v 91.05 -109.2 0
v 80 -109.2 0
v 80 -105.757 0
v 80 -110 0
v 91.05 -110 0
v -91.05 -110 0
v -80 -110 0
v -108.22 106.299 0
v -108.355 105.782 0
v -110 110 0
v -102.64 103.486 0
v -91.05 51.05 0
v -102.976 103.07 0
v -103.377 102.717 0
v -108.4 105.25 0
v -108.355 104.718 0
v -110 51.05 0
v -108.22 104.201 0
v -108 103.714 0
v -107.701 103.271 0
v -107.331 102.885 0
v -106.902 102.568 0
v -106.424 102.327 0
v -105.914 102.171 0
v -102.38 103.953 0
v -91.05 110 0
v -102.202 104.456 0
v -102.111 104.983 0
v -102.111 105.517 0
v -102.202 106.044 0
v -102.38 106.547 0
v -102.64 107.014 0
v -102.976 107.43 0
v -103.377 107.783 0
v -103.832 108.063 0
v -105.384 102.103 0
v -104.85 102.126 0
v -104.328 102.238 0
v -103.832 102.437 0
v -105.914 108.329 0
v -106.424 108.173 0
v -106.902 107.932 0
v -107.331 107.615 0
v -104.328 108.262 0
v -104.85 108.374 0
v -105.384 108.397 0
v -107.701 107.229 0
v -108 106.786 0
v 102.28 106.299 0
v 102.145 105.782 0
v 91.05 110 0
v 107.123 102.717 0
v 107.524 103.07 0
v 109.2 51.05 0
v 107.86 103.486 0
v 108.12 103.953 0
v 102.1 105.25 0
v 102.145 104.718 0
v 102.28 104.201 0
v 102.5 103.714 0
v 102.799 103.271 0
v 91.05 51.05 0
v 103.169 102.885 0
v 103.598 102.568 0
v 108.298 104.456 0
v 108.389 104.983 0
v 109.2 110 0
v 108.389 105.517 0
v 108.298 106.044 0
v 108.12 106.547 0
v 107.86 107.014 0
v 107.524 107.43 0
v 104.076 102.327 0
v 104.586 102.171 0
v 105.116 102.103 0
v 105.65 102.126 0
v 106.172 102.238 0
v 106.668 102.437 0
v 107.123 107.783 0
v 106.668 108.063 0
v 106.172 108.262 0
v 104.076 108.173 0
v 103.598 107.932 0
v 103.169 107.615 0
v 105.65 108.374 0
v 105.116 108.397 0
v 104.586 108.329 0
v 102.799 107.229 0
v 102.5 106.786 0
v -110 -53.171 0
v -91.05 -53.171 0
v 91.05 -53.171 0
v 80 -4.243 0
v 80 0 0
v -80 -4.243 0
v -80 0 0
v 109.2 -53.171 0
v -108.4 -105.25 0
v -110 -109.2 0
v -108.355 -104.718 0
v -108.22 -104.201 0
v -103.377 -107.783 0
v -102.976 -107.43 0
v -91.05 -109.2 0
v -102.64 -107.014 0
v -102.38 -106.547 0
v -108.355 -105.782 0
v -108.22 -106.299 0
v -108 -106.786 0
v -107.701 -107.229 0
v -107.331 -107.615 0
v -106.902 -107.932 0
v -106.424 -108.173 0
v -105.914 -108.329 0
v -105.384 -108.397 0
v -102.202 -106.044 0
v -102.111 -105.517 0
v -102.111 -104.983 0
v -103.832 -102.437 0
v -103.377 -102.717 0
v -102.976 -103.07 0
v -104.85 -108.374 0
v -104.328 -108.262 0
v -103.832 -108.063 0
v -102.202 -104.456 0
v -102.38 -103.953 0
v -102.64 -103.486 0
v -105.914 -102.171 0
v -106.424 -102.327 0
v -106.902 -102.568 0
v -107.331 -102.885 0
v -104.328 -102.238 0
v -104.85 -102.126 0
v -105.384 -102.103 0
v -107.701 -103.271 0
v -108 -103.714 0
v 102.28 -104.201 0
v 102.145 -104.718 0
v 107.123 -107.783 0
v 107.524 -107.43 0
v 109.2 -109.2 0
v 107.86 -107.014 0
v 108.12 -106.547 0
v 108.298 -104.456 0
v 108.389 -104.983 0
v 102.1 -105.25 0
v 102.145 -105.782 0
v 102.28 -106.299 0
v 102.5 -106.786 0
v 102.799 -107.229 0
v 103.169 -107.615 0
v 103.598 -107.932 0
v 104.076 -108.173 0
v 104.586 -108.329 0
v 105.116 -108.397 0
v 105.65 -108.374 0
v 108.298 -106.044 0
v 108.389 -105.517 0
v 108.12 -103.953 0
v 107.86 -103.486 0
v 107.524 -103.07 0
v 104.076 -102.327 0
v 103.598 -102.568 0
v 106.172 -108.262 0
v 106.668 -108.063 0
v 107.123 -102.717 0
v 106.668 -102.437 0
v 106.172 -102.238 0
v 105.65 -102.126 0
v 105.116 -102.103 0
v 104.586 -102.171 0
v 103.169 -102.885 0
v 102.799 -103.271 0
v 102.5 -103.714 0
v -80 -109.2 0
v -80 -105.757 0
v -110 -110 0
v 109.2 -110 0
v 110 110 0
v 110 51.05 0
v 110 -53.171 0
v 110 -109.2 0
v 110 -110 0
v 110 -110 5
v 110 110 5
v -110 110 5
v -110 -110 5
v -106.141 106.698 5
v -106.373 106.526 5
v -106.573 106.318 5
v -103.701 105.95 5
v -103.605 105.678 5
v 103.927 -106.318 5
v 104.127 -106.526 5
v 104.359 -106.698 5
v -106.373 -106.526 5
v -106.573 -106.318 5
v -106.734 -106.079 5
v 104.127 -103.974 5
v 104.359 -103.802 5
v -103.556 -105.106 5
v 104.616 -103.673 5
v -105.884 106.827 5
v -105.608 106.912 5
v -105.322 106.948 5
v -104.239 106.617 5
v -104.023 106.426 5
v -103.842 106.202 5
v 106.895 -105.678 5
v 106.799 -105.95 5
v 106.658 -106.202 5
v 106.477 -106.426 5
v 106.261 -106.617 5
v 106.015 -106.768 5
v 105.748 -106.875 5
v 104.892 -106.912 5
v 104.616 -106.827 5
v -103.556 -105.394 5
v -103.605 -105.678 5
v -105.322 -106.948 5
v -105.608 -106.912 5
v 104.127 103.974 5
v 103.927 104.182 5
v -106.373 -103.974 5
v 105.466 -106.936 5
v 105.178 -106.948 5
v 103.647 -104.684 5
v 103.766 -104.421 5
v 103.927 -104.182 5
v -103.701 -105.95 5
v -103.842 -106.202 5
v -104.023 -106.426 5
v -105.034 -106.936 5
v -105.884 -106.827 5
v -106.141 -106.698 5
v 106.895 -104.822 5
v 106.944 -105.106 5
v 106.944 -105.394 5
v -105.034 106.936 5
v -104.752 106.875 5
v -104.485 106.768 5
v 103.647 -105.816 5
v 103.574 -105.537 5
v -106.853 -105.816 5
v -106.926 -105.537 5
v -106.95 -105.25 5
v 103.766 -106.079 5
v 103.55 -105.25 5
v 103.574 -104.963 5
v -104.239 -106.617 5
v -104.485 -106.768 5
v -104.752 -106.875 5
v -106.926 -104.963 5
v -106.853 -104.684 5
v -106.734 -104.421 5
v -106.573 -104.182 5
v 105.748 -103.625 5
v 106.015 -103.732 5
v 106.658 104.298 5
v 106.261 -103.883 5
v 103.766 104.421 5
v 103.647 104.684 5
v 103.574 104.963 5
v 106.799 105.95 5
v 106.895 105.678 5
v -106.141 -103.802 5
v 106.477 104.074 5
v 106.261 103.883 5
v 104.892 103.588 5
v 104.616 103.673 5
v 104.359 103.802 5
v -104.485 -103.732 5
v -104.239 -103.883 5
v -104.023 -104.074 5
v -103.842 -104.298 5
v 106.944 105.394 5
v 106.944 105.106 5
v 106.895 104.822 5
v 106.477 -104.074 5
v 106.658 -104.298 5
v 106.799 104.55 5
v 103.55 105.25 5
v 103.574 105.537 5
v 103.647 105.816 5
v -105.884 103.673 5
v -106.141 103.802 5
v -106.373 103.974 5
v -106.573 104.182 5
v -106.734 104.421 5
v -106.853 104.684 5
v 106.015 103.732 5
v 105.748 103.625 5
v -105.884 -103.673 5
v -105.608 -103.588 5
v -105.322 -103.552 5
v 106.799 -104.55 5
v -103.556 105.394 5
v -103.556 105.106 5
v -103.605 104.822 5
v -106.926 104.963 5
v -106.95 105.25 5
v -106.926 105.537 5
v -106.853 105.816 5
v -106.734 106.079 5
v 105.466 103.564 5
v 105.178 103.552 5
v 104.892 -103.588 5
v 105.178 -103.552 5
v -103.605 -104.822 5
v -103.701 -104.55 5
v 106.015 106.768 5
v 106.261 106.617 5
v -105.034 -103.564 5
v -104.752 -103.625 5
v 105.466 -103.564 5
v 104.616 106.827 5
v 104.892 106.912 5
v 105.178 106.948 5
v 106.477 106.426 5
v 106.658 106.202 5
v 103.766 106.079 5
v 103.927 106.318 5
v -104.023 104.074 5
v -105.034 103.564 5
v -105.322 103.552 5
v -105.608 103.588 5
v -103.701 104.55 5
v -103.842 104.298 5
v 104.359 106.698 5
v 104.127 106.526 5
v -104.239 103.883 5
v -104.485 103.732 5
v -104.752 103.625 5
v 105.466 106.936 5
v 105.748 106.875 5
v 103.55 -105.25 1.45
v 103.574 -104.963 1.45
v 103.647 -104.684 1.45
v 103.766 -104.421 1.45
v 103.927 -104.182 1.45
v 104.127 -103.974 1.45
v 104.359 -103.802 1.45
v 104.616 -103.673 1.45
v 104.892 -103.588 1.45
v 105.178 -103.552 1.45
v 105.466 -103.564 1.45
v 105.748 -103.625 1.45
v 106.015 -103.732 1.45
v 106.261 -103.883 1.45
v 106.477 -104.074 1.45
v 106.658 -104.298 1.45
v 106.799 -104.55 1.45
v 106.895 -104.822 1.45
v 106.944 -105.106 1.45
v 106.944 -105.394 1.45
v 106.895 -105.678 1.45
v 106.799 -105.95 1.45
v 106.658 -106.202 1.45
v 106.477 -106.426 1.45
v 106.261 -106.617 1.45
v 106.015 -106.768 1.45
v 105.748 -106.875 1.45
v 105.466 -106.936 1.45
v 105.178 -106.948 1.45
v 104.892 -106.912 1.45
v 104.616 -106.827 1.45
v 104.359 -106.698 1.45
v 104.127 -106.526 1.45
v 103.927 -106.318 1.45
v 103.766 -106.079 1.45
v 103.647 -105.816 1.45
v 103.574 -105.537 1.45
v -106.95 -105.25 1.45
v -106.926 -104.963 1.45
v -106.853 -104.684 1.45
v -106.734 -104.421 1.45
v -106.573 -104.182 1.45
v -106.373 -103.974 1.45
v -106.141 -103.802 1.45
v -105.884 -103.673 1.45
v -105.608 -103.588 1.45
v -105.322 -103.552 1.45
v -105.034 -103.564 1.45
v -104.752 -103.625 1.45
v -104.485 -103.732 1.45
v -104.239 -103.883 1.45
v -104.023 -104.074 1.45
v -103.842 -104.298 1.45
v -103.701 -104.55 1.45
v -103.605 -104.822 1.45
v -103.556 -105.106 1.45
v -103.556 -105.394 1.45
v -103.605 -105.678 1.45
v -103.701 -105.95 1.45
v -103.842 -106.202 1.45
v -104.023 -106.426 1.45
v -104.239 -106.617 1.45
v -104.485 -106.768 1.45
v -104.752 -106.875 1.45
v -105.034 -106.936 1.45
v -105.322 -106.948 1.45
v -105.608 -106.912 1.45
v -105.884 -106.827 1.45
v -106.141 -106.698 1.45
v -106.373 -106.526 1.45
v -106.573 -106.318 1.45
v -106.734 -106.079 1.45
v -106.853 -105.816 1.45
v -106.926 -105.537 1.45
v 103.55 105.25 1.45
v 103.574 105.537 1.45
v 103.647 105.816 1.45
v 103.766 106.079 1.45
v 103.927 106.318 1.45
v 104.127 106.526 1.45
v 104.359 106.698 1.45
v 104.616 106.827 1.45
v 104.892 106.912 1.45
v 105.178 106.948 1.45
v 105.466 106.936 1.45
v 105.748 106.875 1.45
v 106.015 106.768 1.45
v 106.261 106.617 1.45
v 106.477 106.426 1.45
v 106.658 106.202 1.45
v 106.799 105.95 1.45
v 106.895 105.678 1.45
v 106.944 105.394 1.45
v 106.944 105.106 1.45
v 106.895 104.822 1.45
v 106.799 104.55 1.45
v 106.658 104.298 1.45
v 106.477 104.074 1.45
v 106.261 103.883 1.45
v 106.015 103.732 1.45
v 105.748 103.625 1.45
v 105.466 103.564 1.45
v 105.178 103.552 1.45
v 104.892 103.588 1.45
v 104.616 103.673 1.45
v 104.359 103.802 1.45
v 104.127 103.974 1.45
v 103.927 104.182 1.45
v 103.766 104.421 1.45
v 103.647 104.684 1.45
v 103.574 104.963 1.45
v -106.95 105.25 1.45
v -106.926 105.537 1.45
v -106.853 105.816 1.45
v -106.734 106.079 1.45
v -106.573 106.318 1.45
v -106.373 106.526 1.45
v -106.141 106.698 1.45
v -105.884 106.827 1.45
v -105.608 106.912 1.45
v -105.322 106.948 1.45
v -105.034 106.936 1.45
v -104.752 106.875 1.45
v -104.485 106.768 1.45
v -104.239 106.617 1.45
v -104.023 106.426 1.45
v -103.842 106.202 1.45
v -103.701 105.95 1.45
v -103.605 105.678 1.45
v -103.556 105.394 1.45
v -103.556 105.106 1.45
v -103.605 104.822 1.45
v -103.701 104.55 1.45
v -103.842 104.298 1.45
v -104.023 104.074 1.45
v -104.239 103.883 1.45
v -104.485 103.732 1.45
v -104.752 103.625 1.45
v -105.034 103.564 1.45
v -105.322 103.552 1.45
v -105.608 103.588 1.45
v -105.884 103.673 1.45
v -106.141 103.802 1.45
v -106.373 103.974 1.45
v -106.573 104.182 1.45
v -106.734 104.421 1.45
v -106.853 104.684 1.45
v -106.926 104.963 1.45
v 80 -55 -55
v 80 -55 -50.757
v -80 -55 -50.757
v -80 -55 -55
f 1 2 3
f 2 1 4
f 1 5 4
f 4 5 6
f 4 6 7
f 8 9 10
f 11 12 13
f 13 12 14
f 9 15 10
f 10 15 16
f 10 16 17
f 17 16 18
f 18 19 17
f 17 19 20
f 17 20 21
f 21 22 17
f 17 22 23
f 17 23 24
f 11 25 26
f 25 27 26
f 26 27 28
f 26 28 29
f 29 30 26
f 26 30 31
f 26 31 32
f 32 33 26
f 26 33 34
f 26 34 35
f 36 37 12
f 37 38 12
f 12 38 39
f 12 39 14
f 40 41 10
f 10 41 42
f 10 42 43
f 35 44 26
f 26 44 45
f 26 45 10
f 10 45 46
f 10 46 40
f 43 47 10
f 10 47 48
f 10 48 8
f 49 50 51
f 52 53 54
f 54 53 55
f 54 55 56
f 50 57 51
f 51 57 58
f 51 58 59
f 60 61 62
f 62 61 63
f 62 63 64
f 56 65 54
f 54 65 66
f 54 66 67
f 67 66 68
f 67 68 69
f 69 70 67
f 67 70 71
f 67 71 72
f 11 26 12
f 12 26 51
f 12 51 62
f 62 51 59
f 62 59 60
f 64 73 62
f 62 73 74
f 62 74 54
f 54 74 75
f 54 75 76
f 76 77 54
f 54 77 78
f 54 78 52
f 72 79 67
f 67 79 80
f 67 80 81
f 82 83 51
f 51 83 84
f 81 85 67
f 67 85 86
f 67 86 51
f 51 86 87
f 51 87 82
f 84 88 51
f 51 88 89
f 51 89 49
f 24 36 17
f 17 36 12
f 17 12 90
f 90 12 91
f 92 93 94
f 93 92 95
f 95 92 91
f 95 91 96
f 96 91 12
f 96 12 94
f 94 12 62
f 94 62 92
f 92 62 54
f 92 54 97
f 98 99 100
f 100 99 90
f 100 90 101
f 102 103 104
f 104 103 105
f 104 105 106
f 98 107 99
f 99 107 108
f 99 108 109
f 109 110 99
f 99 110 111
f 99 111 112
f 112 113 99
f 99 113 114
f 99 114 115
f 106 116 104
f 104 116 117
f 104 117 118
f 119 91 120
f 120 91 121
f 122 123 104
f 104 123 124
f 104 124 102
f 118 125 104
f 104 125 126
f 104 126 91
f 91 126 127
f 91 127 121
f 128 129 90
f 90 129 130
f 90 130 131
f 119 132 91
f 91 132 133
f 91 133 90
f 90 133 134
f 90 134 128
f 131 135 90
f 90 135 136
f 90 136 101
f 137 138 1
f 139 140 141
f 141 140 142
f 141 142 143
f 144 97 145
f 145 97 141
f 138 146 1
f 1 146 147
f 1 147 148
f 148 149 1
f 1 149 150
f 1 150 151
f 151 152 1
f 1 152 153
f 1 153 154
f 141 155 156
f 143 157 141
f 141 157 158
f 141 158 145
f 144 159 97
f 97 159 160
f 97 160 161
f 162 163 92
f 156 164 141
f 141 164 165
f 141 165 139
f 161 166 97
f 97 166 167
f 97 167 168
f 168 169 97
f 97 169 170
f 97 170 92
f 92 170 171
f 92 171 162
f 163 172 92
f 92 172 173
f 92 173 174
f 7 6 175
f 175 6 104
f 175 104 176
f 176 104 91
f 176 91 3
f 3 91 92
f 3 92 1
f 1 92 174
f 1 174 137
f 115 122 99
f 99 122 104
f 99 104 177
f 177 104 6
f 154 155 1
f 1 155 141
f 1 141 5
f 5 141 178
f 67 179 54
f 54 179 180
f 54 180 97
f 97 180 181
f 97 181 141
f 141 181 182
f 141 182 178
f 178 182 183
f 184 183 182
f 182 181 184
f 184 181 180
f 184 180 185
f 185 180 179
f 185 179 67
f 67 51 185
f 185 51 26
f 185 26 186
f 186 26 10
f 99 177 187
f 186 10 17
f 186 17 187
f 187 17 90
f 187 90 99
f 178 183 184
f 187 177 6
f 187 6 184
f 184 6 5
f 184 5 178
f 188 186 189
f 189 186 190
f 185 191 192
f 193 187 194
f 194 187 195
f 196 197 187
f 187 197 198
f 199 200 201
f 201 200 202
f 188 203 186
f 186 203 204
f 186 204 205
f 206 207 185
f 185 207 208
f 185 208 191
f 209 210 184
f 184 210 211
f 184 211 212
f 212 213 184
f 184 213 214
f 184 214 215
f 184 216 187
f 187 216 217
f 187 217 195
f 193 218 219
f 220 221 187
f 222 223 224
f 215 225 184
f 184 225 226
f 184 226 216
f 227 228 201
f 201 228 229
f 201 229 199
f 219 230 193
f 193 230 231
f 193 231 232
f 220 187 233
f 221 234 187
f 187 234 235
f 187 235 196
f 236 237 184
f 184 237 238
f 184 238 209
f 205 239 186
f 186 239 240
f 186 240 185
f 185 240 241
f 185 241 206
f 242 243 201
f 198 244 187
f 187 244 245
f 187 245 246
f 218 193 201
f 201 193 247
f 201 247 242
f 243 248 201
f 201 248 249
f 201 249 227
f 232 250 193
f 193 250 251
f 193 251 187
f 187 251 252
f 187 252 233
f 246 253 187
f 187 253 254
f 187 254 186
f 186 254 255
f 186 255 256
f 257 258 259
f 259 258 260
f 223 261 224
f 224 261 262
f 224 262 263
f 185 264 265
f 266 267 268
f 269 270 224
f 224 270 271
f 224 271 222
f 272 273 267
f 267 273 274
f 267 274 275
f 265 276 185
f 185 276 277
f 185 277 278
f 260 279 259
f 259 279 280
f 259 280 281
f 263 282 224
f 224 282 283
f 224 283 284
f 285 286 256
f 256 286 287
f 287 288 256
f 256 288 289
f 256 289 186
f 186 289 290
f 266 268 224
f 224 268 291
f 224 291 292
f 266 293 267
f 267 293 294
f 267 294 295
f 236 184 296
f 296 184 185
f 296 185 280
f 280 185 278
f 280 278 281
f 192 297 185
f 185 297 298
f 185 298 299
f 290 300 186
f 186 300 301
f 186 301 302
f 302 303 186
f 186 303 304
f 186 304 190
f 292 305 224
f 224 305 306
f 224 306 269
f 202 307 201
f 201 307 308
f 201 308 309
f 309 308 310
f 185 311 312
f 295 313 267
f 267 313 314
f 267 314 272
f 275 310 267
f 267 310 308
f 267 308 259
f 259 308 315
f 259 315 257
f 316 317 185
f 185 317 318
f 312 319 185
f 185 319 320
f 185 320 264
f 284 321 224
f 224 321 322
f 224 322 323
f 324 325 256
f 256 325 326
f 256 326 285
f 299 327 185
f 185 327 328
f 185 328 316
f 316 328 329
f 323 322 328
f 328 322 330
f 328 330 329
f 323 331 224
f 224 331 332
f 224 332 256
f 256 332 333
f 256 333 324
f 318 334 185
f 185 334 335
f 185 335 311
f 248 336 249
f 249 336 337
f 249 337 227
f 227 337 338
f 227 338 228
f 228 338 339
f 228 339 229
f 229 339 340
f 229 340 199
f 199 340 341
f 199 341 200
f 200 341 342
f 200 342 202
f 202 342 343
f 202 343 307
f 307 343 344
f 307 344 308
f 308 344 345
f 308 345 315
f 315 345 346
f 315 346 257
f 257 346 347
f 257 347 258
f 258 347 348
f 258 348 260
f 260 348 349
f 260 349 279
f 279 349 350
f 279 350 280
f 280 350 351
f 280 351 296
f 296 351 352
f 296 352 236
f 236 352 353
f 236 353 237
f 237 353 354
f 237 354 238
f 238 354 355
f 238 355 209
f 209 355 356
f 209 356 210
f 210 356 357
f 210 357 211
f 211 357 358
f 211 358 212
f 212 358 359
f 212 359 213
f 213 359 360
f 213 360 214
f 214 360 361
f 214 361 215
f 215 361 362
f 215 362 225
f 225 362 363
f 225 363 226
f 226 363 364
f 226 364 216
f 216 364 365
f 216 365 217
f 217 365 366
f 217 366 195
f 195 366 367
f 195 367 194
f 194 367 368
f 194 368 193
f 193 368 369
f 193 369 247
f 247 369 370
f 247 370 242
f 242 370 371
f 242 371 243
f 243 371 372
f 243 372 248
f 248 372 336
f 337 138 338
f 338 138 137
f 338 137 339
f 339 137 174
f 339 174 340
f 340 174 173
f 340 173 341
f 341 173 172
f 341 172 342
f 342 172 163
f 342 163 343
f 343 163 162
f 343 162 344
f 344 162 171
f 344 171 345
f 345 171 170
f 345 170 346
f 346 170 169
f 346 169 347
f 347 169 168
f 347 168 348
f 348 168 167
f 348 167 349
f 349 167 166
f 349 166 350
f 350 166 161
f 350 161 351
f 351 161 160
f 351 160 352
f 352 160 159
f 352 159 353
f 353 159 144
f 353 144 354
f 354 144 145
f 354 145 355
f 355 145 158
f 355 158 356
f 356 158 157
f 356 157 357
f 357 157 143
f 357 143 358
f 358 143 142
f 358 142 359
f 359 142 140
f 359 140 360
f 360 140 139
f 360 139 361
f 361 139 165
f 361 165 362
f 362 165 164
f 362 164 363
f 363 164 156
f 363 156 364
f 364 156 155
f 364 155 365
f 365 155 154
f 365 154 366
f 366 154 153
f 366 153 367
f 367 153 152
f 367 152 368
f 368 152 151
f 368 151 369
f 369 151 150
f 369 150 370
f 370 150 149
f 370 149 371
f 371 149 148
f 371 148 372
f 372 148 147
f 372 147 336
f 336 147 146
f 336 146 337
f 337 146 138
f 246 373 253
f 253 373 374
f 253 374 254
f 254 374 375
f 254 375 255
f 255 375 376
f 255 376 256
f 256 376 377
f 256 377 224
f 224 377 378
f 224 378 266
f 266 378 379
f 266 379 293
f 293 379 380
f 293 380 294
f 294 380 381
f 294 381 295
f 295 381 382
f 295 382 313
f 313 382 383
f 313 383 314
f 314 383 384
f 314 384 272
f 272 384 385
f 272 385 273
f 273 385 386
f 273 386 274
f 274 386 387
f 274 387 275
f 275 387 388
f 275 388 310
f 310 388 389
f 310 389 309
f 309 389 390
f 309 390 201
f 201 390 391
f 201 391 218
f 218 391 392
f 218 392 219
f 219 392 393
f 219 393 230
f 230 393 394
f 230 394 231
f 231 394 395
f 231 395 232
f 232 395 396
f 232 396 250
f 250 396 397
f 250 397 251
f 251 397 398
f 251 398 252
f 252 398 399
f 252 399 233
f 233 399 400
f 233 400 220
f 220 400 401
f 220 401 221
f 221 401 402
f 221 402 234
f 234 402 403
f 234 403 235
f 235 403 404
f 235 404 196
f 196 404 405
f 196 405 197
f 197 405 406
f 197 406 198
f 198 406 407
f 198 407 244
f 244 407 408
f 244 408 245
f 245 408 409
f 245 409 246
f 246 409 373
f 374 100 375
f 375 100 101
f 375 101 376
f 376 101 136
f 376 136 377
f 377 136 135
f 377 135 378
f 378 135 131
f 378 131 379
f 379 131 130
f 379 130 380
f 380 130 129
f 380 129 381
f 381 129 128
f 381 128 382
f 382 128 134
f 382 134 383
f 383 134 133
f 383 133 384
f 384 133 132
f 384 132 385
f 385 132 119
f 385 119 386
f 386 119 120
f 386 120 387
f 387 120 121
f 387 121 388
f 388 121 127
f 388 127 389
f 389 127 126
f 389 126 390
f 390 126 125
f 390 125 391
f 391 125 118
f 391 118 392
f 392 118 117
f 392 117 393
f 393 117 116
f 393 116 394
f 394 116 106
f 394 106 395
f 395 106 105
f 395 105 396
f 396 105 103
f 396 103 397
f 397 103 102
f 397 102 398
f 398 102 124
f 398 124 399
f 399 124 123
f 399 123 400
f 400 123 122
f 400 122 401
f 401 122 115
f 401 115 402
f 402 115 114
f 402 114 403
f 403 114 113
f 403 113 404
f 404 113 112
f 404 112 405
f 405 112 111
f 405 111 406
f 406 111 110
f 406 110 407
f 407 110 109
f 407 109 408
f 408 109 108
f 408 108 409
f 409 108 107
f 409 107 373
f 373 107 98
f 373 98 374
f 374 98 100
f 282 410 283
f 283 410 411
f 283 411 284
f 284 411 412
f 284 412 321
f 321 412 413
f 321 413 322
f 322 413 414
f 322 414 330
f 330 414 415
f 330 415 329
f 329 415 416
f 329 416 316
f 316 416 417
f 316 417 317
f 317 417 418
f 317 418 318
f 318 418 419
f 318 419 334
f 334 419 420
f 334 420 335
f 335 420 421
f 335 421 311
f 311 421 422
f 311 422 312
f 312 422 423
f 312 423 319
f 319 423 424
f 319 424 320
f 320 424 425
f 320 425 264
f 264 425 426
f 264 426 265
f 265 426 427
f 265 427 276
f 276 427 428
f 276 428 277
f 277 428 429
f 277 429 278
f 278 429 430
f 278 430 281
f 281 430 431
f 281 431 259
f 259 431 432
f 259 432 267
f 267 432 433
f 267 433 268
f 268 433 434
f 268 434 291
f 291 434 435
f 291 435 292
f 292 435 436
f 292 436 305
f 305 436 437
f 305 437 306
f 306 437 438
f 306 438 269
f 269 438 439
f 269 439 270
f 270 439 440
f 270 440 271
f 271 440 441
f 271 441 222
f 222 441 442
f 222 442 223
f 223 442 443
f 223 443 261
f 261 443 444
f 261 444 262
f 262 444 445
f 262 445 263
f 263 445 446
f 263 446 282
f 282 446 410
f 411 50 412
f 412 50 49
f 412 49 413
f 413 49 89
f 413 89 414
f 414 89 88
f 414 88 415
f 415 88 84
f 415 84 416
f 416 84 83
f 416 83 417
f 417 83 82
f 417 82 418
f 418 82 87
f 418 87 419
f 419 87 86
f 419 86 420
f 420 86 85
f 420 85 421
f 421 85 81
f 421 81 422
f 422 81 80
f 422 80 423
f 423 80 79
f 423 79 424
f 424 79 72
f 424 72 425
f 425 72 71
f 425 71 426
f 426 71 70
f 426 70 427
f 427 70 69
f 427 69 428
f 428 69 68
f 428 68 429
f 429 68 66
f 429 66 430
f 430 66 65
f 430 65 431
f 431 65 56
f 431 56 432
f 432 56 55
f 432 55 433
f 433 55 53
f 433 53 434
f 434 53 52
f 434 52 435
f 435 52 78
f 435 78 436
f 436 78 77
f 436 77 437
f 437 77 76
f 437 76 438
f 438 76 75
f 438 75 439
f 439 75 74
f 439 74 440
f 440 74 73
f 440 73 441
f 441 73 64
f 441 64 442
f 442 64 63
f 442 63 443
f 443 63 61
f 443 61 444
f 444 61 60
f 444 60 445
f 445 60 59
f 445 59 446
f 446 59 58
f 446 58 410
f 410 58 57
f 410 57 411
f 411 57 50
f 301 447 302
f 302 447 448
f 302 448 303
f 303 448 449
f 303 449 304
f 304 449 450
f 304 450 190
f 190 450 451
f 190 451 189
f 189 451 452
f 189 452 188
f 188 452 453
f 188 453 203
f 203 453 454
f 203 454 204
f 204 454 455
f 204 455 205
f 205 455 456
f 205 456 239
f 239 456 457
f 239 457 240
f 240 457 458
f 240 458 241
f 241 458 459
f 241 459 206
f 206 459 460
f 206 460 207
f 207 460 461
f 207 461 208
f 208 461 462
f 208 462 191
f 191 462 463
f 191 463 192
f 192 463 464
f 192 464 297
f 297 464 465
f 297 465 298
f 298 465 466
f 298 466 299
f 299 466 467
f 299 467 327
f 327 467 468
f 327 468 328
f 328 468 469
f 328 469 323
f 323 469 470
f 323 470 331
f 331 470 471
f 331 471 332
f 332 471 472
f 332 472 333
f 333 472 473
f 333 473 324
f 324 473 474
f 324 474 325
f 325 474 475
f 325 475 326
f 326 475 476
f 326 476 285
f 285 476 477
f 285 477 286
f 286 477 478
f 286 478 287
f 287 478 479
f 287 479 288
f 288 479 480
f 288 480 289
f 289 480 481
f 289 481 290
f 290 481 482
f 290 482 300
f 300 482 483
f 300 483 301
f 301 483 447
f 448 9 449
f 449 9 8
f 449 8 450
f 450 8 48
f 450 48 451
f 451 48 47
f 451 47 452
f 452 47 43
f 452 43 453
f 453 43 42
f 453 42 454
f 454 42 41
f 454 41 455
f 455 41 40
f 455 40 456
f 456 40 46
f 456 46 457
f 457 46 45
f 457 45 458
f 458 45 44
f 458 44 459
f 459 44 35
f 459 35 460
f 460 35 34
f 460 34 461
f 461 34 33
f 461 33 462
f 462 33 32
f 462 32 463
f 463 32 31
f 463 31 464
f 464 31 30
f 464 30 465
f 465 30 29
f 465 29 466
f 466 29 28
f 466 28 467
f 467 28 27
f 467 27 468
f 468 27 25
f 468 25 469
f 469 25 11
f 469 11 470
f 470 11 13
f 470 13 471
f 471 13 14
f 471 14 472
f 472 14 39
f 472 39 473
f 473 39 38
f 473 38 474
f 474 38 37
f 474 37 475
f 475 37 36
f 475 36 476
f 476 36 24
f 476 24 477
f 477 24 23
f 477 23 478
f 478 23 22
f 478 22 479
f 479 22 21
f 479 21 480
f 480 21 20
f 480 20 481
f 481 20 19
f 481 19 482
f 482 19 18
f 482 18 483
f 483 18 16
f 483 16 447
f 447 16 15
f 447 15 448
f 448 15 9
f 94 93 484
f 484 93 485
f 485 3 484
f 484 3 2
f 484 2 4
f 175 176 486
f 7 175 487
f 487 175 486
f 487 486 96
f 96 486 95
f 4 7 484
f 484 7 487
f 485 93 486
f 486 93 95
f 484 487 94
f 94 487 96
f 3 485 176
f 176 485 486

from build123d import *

# Parameters (mm, degrees)
SKICA1_W                                          = 220
SKICA1_H                                          = 220
P_IDAT_VYSUNUT_M1_DEPTH                           = 5
KU_ELOV_ZAHLOUBEN_PRO_M3_ROUBU_SE_Z_P_D           = 3.4
KU_ELOV_ZAHLOUBEN_PRO_M3_ROUBU_SE_Z_P_CSINK_D     = 6.3
KU_ELOV_ZAHLOUBEN_PRO_M3_ROUBU_SE_Z_P_CSINK_ANGLE = 90
ZRCADLIT1_AT_THE_SECOND_PLANE_COPY_1_D            = 3.4
ZRCADLIT1_AT_THE_SECOND_PLANE_COPY_1_CSINK_D      = 6.3
ZRCADLIT1_AT_THE_SECOND_PLANE_COPY_1_CSINK_ANGLE  = 90
SKICA11_W                                         = 160
SKICA11_H                                         = 77.7817
P_IDAT_VYSUNUT_M2_DEPTH                           = 3
SKICA17_W                                         = 160
SKICA17_H                                         = 77.781745931
P_IDAT_VYSUNUT_M3_DEPTH                           = 3


with BuildPart() as part:
    # Skica1 → Přidat vysunutím1 (new body)
    with BuildSketch(Plane.XY):
        Rectangle(SKICA1_W, SKICA1_H)
    extrude(amount=P_IDAT_VYSUNUT_M1_DEPTH)

    # Kuželové zahloubení pro M3 šroubu se zápustnou hlavou plochou1 (through all)
    with Locations(Plane(origin=(0, 0, 0), x_dir=(-1, 0, 0), z_dir=(0, 0, -1))):
        with Locations((-105.25, -105.25)):
            ku_elov_zahlouben_pro_m3_roubu_se_z_p = CounterSinkHole(KU_ELOV_ZAHLOUBEN_PRO_M3_ROUBU_SE_Z_P_D / 2, KU_ELOV_ZAHLOUBEN_PRO_M3_ROUBU_SE_Z_P_CSINK_D / 2, counter_sink_angle=KU_ELOV_ZAHLOUBEN_PRO_M3_ROUBU_SE_Z_P_CSINK_ANGLE)

    # Zrcadlit1: Kuželové zahloubení pro M3 šroubu se zápustnou hlavou plochou1 across plane
    add(ku_elov_zahlouben_pro_m3_roubu_se_z_p.mirror(Plane.ZX), mode=Mode.SUBTRACT)

    # Zrcadlit1 at the second plane: Kuželové zahloubení pro M3 šroubu se zápustnou hlavou plochou1 across plane
    add(ku_elov_zahlouben_pro_m3_roubu_se_z_p.mirror(Plane(origin=(0, 0, 0), x_dir=(0, 0, 1), z_dir=(1, 0, 0))), mode=Mode.SUBTRACT)

    # Zrcadlit1 at the second plane copy 1 (through all)
    with Locations(Plane(origin=(0, 0, 0), x_dir=(1, 0, 0), z_dir=(0, 0, -1))):
        with Locations((-105.25, -105.25)):
            CounterSinkHole(ZRCADLIT1_AT_THE_SECOND_PLANE_COPY_1_D / 2, ZRCADLIT1_AT_THE_SECOND_PLANE_COPY_1_CSINK_D / 2, counter_sink_angle=ZRCADLIT1_AT_THE_SECOND_PLANE_COPY_1_CSINK_ANGLE)

    # Skica11 → Přidat vysunutím2 (add)
    with BuildSketch(Plane(origin=(0, 0, 0), x_dir=(-1, 0, 0), z_dir=(0, -0.7071067811865438, 0.7071067811865512))):
        with Locations((0, 38.89085)):
            Rectangle(SKICA11_W, SKICA11_H)
    extrude(amount=P_IDAT_VYSUNUT_M2_DEPTH)

    # Skica17 → Přidat vysunutím3 (add)
    with BuildSketch(Plane(origin=(0, -54.999967522, -54.999967522), x_dir=(1, 0, 0), z_dir=(0, -0.7071067811865513, -0.7071067811865438))):
        with Locations((0, 38.890872966)):
            Rectangle(SKICA17_W, SKICA17_H)
    extrude(amount=-P_IDAT_VYSUNUT_M3_DEPTH)


solid = part.part
